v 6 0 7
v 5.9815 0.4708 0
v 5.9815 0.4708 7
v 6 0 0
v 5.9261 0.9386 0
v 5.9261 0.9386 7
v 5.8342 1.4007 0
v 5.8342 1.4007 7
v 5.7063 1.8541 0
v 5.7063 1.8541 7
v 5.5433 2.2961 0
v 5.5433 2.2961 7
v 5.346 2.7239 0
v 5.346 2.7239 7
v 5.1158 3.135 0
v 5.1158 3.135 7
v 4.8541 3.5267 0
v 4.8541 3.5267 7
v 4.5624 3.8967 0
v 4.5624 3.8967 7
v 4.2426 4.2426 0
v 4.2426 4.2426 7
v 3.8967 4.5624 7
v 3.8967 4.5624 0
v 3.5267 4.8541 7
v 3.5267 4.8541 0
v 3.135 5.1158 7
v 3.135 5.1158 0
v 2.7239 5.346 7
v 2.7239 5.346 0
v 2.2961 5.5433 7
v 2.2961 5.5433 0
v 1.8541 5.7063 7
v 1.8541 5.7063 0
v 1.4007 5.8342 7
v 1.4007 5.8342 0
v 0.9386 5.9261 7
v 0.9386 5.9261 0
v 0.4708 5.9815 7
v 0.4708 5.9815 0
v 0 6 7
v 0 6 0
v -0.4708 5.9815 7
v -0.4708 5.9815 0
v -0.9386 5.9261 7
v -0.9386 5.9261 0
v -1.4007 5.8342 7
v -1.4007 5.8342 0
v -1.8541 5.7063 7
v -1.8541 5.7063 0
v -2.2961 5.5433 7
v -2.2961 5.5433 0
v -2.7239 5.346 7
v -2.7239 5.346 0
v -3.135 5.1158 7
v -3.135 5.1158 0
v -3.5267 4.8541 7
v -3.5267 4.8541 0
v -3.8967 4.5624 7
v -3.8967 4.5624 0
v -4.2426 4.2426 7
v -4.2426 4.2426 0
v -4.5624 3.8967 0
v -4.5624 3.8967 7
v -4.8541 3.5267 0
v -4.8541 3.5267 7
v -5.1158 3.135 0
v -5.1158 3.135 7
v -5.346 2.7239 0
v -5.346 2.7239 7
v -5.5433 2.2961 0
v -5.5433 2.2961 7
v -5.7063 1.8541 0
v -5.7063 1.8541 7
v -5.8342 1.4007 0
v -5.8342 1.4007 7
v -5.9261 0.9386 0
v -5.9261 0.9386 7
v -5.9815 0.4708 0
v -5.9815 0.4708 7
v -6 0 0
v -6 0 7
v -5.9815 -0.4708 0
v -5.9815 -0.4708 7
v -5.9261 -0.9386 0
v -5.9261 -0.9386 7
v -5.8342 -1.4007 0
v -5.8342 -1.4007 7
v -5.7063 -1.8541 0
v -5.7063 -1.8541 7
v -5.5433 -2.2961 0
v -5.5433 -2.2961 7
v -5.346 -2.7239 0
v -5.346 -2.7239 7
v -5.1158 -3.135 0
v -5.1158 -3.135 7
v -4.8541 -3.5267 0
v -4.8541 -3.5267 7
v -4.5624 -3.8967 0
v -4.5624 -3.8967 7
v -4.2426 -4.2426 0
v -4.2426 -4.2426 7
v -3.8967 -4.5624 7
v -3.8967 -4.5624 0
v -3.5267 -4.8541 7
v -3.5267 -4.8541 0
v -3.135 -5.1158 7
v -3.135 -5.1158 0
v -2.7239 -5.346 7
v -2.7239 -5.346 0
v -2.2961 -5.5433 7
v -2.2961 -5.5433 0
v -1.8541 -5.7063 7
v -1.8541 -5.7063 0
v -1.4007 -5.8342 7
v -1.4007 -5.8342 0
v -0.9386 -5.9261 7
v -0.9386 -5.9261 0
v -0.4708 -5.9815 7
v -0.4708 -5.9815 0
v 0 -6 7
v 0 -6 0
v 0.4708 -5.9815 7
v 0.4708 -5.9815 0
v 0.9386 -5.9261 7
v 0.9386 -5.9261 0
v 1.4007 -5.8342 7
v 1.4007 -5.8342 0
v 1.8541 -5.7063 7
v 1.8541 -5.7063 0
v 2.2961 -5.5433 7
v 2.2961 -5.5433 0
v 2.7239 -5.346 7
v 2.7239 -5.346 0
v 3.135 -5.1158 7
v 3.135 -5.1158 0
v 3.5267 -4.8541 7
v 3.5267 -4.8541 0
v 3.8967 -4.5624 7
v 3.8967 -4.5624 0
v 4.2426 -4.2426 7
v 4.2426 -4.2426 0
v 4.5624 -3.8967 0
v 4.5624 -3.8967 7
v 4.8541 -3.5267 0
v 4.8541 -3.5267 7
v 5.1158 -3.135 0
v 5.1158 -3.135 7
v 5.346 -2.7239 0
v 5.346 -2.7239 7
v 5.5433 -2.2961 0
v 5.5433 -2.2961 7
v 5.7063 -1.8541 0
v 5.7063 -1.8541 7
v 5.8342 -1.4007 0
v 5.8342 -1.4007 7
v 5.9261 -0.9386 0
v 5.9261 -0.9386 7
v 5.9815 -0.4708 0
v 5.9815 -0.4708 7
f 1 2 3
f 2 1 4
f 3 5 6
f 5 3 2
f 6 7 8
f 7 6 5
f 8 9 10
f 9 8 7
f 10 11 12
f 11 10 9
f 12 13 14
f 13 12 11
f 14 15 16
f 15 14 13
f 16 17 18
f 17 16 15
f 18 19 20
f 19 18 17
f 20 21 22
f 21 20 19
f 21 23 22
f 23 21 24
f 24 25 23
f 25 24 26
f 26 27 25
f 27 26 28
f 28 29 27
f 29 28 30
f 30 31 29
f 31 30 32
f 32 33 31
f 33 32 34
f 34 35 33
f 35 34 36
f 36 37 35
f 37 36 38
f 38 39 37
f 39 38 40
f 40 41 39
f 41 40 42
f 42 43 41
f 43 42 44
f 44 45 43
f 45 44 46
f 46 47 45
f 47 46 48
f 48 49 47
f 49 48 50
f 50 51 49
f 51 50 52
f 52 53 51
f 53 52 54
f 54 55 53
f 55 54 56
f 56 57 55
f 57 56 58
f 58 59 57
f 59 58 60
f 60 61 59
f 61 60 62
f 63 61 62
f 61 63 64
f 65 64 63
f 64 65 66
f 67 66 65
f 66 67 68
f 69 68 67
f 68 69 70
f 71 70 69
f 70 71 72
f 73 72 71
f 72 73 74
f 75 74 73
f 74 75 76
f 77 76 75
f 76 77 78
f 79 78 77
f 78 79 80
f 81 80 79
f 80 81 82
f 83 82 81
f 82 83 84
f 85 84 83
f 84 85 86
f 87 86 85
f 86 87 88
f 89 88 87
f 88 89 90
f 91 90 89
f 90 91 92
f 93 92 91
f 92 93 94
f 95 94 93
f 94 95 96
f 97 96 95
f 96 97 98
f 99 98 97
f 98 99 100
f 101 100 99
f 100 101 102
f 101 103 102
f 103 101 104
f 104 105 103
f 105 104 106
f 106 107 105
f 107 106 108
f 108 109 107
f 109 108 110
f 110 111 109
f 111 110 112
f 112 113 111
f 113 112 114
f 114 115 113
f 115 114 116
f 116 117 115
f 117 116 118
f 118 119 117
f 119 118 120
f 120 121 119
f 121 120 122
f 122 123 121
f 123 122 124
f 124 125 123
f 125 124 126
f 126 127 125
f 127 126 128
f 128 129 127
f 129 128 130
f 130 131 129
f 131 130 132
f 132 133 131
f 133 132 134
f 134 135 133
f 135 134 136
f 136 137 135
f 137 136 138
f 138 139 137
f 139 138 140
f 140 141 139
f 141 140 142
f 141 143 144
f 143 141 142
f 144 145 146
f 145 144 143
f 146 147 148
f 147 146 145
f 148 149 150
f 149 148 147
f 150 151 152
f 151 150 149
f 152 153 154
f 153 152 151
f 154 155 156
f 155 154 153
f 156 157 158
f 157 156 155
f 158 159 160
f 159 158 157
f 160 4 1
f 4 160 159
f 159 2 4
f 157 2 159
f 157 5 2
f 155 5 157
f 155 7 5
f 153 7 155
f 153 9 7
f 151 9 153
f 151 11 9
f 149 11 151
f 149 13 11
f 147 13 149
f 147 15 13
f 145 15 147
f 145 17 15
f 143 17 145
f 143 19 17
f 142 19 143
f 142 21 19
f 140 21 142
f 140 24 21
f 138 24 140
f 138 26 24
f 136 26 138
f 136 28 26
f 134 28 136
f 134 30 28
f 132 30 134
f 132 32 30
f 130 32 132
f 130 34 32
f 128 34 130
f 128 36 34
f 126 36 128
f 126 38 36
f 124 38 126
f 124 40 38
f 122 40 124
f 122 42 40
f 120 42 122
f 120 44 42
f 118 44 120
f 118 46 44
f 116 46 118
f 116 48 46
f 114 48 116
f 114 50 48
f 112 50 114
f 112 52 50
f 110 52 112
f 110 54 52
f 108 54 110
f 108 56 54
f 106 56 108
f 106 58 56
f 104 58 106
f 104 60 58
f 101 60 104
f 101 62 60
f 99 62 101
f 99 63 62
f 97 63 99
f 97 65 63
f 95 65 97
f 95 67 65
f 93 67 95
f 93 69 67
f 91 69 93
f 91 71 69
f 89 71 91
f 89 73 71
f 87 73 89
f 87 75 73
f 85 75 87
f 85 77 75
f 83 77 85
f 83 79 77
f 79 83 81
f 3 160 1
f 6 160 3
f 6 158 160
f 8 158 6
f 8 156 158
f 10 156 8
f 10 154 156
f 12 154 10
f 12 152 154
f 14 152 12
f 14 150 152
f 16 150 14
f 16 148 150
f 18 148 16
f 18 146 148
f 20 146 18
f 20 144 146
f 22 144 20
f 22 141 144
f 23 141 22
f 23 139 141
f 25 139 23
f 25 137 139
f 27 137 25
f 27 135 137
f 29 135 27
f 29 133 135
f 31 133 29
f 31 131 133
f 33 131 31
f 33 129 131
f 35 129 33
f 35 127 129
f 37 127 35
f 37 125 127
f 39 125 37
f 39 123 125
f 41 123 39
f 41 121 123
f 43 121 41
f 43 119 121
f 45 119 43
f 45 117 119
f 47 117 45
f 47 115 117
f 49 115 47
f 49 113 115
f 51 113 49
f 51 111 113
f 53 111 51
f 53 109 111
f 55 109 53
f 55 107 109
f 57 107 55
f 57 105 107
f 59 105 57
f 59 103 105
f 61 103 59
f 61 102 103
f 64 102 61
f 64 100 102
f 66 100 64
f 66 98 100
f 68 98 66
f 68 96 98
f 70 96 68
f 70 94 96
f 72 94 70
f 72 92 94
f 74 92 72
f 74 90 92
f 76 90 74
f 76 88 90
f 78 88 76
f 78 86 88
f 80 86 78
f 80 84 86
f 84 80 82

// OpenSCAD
//Parameters
radius = 6;
height = 7;
detail = 80;


//Modele du pion
cylinder(
    h = height,
    r = radius,
    $fn = detail
);
